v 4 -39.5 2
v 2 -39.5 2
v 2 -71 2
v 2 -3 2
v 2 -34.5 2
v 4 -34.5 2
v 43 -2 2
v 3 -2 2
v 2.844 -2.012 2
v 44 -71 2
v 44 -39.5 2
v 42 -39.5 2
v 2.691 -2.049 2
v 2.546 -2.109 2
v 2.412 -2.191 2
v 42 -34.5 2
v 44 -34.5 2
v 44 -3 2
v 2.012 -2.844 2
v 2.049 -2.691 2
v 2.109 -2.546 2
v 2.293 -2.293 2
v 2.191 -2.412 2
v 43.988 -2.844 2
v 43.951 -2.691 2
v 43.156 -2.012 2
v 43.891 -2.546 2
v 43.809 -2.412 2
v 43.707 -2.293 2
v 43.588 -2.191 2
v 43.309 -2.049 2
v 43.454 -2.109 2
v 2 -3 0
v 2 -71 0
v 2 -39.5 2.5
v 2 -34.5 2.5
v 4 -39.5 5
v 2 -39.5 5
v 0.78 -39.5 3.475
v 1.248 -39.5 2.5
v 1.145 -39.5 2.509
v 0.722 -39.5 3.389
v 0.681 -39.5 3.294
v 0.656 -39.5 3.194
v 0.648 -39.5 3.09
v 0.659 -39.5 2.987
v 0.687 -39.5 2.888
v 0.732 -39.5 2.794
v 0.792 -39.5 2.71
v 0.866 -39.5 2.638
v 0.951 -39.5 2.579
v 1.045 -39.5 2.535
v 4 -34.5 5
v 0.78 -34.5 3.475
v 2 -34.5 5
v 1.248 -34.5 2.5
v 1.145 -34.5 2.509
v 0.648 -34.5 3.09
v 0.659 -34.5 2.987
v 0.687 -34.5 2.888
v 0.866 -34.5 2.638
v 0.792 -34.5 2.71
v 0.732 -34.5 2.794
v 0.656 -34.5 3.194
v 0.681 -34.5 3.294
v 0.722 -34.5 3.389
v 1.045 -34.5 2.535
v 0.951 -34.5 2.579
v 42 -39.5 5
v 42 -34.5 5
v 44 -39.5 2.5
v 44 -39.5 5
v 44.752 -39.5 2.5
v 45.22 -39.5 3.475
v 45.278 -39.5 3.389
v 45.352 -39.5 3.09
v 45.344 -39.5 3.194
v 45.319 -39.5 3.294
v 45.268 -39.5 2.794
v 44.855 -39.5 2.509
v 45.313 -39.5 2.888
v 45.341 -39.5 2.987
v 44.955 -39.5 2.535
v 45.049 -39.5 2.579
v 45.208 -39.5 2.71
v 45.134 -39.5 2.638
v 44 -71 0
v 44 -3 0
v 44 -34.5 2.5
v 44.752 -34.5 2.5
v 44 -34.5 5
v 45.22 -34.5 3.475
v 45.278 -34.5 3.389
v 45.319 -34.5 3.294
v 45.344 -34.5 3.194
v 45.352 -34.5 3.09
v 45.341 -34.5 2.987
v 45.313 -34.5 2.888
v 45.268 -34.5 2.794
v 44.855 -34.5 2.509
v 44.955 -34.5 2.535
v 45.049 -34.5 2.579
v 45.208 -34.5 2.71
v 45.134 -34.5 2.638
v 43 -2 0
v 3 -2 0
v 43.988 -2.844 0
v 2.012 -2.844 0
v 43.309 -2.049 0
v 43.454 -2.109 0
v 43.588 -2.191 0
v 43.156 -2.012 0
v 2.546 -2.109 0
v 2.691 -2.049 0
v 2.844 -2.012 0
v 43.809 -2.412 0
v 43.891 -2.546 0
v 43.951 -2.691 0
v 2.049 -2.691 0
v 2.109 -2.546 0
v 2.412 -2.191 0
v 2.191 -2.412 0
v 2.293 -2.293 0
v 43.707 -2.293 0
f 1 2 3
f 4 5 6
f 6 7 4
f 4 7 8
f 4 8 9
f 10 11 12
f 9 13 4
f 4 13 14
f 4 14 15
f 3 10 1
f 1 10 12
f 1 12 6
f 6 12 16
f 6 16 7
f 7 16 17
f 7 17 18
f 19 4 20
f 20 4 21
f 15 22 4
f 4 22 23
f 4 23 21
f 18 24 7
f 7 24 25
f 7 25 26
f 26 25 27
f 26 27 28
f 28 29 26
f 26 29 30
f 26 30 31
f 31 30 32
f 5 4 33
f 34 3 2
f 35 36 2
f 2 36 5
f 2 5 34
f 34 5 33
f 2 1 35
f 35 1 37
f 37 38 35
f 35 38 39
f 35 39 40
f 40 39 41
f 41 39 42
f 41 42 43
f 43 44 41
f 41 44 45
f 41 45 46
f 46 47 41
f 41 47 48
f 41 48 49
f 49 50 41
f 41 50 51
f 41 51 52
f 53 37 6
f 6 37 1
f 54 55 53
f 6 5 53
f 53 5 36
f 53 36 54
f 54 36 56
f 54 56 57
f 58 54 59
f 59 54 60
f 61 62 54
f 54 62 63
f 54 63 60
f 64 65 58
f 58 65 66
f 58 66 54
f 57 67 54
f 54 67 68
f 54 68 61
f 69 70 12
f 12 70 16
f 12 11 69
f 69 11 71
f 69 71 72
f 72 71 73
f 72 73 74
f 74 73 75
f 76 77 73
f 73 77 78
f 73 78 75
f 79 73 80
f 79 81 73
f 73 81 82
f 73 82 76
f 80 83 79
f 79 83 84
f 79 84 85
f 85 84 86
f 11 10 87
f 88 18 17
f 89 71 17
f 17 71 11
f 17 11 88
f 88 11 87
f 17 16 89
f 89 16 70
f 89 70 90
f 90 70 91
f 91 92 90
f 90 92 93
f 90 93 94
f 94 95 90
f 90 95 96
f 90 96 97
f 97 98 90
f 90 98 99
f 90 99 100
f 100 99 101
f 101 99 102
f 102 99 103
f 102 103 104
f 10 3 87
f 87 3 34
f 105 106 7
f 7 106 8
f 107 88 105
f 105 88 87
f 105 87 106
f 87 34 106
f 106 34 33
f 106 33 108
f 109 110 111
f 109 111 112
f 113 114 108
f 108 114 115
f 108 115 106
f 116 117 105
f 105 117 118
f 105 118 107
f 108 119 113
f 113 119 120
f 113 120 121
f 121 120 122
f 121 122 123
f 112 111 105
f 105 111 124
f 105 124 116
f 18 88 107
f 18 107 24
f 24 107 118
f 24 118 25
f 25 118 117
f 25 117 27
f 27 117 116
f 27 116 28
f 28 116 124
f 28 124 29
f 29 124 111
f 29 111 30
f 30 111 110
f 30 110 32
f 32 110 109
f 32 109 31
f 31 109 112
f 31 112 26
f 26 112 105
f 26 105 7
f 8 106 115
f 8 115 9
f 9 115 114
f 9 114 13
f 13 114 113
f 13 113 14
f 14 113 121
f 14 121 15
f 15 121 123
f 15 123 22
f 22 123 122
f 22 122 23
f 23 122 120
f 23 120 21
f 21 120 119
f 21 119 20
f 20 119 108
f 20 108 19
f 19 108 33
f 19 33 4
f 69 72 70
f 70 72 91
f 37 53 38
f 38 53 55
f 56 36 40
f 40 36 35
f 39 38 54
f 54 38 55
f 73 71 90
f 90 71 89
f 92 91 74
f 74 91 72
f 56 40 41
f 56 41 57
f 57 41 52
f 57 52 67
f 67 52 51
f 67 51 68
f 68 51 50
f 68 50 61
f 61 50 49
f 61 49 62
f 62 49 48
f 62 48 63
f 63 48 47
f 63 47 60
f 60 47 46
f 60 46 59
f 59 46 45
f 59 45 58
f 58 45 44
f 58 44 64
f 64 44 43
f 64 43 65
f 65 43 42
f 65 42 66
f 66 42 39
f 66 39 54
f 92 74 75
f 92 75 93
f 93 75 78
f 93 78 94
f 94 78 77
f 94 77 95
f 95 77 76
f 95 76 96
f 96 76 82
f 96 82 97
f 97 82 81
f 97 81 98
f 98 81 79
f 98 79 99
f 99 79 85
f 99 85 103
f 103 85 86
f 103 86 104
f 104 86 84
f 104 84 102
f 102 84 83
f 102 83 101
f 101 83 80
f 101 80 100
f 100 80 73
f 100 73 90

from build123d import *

# Parameters (mm, degrees)
SKETCH1_W           = 46
SKETCH1_H           = 73
BOSS_EXTRUDE1_DEPTH = 2
SKETCH2_W           = 2
SKETCH2_H           = 5
BOSS_EXTRUDE2_DEPTH = 3
BOSS_EXTRUDE3_DEPTH = 5
FILLET1_R           = 0.6
FILLET2_R           = 5
SKETCH5_W           = 46
SKETCH5_H           = 73
SKETCH5_W_2         = 42
SKETCH5_H_2         = 69
CUT_EXTRUDE1_DEPTH  = 10
FILLET3_R           = 1
SKETCH6_W           = 4.312342675
SKETCH6_H           = 2.937978419
SKETCH6_W_2         = 4.686780993
SKETCH6_H_2         = 2.65792504
CUT_EXTRUDE2_DEPTH  = 10
BOSS_EXTRUDE4_DEPTH = 5
FILLET4_R           = 0.6


with BuildPart() as part:
    # Sketch1 → Boss-Extrude1 (new body)
    with BuildSketch(Plane.XY):
        with Locations((23, -36.5)):
            Rectangle(SKETCH1_W, SKETCH1_H)
    extrude(amount=BOSS_EXTRUDE1_DEPTH)

    # Sketch2 → Boss-Extrude2 (add)
    with BuildSketch(Plane.XY.offset(2)):
        with Locations((3, -37)):
            Rectangle(SKETCH2_W, SKETCH2_H)
        with Locations((43, -37)):
            Rectangle(SKETCH2_W, SKETCH2_H)
    extrude(amount=BOSS_EXTRUDE2_DEPTH)

    # Sketch3 → Boss-Extrude3 (add)
    with BuildSketch(Plane.XZ.offset(39.5)):
        Polygon((2, 5), (0, 5), (2, 7), (4, 7), (4, 5), align=None)
        Polygon((44, 5), (46, 5), (44, 7), (42, 7), (42, 5), align=None)
    extrude(amount=-BOSS_EXTRUDE3_DEPTH)

    # Fillet1
    fillet1_edges = [part.edges().sort_by_distance(p)[0] for p in [
        (0, -37, 5),
        (46, -37, 5),
    ]]
    fillet(fillet1_edges, radius=FILLET1_R)

    # Fillet2
    fillet2_edges = [part.edges().sort_by_distance(p)[0] for p in [
        (0, 0, 1),
        (46, 0, 1),
    ]]
    fillet(fillet2_edges, radius=FILLET2_R)

    # Sketch5 → Cut-Extrude1 (cut)
    with BuildSketch(Plane.XY.offset(2)):
        with Locations((23, -36.5)):
            Rectangle(SKETCH5_W, SKETCH5_H)
        with Locations((23, -36.5)):
            Rectangle(SKETCH5_W_2, SKETCH5_H_2, mode=Mode.SUBTRACT)
    extrude(amount=-CUT_EXTRUDE1_DEPTH, mode=Mode.SUBTRACT)

    # Fillet3
    fillet3_edges = [part.edges().sort_by_distance(p)[0] for p in [
        (2, -2, 1),
        (44, -2, 1),
    ]]
    fillet(fillet3_edges, radius=FILLET3_R)

    # Sketch6 → Cut-Extrude2 (cut)
    with BuildSketch(Plane.XZ.offset(39.5)):
        with Locations((1.843828662, 6.46898921)):
            Rectangle(SKETCH6_W, SKETCH6_H)
        with Locations((44.343390497, 6.32896252)):
            Rectangle(SKETCH6_W_2, SKETCH6_H_2)
    extrude(amount=-CUT_EXTRUDE2_DEPTH, mode=Mode.SUBTRACT)

    # Sketch7 → Boss-Extrude4 (add)
    with BuildSketch(Plane.XZ.offset(39.5)):
        Polygon((2, 2.5), (0, 2.5), (2, 5), (4, 5), (4, 2.5), align=None)
        Polygon((42, 2.5), (46, 2.5), (44, 5), (42, 5), align=None)
    extrude(amount=-BOSS_EXTRUDE4_DEPTH)

    # Fillet4
    fillet4_edges = [part.edges().sort_by_distance(p)[0] for p in [
        (0, -37, 2.5),
        (46, -37, 2.5),
    ]]
    fillet(fillet4_edges, radius=FILLET4_R)


solid = part.part
